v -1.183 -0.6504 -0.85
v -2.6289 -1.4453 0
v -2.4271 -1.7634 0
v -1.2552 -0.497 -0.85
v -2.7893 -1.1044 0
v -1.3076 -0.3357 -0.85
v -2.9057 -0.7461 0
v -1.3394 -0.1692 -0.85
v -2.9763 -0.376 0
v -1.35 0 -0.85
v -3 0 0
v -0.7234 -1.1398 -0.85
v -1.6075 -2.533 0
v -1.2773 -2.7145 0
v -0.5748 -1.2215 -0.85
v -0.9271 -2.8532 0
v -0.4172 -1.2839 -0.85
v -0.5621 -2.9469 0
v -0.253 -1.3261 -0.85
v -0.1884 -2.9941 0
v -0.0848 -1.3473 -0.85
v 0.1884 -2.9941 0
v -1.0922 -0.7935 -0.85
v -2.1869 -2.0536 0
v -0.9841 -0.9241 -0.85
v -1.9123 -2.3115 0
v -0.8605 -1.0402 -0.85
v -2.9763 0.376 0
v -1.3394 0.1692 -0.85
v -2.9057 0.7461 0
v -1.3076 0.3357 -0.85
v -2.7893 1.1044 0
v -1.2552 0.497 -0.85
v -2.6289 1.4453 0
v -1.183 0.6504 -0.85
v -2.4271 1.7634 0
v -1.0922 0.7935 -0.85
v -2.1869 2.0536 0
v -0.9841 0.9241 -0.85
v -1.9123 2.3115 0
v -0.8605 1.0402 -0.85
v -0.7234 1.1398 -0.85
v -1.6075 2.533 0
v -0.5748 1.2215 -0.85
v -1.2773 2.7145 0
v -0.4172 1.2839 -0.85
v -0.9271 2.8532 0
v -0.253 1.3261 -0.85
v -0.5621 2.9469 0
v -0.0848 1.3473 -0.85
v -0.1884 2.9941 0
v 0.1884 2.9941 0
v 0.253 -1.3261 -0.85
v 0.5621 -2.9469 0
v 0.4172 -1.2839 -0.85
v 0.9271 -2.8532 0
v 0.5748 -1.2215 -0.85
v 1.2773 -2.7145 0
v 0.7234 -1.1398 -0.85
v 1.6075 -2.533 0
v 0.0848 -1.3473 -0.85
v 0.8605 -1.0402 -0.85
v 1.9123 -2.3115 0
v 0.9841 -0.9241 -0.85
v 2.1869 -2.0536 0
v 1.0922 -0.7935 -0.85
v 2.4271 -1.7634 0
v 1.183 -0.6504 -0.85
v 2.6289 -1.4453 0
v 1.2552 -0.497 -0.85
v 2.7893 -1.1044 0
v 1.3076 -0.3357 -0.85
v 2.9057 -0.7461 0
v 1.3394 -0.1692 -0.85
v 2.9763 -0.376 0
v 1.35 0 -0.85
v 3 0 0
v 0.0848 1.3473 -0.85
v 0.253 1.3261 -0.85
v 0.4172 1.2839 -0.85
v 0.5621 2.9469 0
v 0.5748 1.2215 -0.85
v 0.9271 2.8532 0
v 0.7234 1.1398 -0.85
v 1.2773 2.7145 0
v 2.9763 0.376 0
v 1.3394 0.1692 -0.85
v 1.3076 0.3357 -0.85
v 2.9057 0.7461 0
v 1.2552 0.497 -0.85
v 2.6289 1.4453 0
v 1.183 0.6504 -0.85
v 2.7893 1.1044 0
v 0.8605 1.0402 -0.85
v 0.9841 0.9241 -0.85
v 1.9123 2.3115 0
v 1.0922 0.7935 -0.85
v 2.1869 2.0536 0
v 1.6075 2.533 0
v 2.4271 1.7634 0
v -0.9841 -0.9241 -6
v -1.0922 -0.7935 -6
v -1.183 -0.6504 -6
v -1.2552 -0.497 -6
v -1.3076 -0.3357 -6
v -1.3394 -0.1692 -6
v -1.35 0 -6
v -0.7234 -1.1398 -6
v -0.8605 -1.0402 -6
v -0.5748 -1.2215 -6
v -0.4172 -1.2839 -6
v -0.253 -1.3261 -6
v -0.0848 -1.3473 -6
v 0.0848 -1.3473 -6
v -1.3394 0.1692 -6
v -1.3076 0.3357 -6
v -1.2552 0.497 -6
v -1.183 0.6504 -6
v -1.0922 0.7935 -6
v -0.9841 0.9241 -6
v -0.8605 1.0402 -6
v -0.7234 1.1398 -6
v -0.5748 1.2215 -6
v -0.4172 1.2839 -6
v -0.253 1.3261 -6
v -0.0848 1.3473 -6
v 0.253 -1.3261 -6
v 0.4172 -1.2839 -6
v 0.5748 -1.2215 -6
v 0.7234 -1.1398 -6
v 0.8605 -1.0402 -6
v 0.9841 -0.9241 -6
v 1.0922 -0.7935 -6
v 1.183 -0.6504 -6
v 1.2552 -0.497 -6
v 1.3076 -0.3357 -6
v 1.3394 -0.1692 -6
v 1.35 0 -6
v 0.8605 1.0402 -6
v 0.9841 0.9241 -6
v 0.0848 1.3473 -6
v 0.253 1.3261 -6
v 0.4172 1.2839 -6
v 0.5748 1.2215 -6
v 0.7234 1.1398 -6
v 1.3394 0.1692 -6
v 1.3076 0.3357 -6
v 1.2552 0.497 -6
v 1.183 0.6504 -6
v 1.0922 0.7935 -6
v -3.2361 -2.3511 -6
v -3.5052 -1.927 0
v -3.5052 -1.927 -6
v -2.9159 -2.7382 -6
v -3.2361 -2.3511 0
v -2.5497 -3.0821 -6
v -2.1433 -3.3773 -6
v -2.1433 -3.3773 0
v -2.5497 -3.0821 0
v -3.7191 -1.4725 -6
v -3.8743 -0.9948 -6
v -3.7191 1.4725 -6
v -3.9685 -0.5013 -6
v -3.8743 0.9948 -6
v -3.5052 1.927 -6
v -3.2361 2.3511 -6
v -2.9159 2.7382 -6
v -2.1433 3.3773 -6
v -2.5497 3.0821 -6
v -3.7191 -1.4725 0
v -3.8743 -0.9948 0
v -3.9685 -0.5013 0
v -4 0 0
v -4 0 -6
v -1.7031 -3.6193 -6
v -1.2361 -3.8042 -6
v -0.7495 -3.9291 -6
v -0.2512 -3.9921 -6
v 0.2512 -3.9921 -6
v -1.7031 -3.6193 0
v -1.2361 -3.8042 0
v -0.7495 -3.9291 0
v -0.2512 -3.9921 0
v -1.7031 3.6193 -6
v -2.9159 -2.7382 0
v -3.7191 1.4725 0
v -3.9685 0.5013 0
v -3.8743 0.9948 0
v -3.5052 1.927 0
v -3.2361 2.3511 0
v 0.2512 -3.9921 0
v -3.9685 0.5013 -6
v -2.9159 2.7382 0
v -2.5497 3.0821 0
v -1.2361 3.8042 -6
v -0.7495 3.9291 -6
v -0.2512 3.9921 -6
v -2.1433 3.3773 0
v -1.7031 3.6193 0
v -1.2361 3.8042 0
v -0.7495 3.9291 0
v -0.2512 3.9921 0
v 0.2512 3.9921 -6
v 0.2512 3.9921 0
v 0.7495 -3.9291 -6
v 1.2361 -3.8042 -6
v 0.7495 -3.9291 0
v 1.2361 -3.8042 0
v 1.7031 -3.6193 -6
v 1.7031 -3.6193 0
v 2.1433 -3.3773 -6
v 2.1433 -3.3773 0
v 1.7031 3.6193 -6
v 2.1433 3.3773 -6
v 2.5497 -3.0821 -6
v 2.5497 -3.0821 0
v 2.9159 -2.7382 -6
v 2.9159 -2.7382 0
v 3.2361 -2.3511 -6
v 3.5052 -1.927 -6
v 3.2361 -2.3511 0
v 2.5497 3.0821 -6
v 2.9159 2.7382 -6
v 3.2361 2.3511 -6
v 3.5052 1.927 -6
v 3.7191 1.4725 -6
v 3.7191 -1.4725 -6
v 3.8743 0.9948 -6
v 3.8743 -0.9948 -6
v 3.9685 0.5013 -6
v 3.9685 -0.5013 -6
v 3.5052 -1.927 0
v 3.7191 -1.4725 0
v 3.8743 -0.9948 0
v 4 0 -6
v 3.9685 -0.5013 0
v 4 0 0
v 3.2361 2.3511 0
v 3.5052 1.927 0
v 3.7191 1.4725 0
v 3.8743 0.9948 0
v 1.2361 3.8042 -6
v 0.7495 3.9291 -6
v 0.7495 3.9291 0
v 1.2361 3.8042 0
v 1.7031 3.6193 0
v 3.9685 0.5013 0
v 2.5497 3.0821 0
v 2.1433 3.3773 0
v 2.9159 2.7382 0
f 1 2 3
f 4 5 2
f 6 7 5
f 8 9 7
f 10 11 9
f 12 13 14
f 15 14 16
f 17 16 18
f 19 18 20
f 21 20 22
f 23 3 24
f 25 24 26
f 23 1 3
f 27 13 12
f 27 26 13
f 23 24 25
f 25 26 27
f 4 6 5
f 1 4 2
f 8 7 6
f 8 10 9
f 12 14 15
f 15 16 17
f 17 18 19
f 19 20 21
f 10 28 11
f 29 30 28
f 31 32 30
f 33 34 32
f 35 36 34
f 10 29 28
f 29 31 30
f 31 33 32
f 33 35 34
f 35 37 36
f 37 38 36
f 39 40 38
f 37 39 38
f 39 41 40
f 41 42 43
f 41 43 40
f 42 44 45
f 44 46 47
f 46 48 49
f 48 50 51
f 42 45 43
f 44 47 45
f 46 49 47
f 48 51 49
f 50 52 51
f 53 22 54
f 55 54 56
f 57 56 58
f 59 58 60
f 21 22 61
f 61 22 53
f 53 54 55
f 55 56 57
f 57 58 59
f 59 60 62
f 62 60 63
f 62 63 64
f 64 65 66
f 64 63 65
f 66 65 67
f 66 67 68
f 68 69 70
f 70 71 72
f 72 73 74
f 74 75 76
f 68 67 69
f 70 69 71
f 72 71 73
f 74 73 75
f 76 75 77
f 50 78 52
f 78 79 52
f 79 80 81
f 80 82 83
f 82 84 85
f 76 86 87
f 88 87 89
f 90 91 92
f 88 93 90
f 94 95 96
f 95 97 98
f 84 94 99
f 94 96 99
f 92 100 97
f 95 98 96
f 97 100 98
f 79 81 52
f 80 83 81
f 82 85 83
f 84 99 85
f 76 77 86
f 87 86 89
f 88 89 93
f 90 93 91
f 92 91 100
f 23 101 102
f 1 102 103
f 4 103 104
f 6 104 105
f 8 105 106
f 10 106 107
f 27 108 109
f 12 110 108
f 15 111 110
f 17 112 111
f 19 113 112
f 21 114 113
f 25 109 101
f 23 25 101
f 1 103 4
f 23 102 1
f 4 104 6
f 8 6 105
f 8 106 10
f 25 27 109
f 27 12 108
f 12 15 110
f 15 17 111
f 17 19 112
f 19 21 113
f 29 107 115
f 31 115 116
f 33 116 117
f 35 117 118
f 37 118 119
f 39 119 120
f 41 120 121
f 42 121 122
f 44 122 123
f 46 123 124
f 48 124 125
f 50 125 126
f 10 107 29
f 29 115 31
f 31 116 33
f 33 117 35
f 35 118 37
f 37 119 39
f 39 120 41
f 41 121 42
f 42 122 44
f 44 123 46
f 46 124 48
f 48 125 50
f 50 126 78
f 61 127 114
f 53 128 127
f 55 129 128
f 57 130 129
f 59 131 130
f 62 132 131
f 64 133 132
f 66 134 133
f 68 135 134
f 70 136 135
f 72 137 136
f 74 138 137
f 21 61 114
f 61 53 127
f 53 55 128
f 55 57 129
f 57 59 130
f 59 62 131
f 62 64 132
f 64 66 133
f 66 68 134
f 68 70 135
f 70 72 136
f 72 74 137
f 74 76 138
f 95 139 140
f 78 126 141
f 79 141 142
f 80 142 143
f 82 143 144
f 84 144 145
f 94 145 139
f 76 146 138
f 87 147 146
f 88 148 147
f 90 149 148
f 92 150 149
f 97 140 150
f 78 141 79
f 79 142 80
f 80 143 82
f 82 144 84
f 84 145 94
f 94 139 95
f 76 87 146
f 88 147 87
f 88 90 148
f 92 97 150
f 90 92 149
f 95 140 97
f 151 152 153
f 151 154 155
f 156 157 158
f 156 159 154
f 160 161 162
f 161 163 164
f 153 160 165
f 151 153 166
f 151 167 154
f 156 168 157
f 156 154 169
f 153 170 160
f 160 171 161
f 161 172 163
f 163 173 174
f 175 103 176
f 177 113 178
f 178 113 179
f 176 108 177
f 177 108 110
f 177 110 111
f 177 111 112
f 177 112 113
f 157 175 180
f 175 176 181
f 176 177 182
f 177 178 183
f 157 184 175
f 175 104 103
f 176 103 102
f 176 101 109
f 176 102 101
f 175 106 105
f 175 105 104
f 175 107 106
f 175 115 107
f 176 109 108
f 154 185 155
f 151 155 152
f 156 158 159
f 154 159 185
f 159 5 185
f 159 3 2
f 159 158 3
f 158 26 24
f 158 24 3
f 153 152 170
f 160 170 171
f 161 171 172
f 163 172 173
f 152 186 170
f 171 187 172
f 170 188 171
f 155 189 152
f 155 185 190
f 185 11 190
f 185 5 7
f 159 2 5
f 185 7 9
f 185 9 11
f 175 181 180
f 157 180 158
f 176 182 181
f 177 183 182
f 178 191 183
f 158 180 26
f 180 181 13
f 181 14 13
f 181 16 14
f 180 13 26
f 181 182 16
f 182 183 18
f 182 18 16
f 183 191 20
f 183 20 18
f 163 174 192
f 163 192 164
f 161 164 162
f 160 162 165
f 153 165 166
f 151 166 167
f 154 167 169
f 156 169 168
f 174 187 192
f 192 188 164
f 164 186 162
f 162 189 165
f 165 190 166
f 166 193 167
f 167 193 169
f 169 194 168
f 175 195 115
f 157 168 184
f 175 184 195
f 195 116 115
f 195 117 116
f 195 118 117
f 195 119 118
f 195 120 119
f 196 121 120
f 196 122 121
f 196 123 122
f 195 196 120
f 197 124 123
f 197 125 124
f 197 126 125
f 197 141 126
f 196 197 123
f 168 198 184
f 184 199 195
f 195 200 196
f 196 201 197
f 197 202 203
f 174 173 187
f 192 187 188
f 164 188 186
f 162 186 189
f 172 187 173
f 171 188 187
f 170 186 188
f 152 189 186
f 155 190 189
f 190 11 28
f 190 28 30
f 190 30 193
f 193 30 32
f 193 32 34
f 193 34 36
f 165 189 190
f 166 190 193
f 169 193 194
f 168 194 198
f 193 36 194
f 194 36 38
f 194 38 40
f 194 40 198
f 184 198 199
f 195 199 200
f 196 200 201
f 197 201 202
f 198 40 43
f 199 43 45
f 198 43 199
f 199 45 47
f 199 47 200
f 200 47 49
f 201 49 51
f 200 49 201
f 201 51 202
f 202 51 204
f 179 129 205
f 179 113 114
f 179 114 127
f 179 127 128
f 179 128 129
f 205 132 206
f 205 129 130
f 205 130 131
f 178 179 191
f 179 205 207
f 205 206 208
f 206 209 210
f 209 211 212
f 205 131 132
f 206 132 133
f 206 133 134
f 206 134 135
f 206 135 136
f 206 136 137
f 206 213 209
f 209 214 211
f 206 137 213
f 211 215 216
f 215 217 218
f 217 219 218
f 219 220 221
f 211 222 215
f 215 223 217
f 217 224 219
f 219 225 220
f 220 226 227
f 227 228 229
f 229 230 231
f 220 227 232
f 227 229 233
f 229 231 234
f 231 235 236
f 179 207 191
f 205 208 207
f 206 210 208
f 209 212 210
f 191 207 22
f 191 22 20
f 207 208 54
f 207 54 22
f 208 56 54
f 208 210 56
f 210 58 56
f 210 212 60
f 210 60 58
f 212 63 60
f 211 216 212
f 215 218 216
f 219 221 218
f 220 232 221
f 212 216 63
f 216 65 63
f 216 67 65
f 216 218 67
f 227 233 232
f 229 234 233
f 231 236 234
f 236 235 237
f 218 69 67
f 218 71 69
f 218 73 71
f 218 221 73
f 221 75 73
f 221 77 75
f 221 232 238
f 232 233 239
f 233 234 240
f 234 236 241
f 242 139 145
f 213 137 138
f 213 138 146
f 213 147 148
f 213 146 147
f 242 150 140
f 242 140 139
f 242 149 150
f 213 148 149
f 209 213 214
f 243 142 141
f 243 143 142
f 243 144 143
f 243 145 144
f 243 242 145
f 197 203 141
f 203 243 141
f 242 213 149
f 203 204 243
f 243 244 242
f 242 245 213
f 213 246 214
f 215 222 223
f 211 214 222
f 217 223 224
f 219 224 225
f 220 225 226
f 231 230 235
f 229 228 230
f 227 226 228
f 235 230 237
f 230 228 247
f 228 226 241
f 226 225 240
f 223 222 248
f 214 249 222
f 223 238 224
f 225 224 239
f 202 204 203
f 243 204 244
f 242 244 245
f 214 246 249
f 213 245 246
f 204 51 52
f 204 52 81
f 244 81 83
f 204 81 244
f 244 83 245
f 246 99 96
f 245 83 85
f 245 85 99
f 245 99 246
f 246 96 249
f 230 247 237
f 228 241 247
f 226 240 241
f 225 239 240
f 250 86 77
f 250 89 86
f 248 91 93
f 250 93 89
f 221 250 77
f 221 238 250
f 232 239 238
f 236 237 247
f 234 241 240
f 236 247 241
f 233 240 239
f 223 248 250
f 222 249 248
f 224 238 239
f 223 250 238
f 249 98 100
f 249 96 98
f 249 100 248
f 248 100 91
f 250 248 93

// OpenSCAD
$fn = 50;

difference() {
	union() {
		translate(v = [0, 0, -6.0]) {
			cylinder(h = 6, r = 4.0);
		}
	}
	union() {
		translate(v = [0, 0, 0]) {
			rotate(a = [0, 0, 0]) {
				difference() {
					union() {
						translate(v = [0, 0, -9.0]) {
							cylinder(h = 9, r = 1.0);
						}
						translate(v = [0, 0, -0.85]) {
							cylinder(h = 0.85, r1 = 1.35, r2 = 3.0);
						}
						translate(v = [0, 0, -9.0]) {
							cylinder(h = 9, r = 1.35);
						}
						translate(v = [0, 0, -9.0]) {
							cylinder(h = 9, r = 1.0);
						}
					}
					union();
				}
			}
		}
	}
}
